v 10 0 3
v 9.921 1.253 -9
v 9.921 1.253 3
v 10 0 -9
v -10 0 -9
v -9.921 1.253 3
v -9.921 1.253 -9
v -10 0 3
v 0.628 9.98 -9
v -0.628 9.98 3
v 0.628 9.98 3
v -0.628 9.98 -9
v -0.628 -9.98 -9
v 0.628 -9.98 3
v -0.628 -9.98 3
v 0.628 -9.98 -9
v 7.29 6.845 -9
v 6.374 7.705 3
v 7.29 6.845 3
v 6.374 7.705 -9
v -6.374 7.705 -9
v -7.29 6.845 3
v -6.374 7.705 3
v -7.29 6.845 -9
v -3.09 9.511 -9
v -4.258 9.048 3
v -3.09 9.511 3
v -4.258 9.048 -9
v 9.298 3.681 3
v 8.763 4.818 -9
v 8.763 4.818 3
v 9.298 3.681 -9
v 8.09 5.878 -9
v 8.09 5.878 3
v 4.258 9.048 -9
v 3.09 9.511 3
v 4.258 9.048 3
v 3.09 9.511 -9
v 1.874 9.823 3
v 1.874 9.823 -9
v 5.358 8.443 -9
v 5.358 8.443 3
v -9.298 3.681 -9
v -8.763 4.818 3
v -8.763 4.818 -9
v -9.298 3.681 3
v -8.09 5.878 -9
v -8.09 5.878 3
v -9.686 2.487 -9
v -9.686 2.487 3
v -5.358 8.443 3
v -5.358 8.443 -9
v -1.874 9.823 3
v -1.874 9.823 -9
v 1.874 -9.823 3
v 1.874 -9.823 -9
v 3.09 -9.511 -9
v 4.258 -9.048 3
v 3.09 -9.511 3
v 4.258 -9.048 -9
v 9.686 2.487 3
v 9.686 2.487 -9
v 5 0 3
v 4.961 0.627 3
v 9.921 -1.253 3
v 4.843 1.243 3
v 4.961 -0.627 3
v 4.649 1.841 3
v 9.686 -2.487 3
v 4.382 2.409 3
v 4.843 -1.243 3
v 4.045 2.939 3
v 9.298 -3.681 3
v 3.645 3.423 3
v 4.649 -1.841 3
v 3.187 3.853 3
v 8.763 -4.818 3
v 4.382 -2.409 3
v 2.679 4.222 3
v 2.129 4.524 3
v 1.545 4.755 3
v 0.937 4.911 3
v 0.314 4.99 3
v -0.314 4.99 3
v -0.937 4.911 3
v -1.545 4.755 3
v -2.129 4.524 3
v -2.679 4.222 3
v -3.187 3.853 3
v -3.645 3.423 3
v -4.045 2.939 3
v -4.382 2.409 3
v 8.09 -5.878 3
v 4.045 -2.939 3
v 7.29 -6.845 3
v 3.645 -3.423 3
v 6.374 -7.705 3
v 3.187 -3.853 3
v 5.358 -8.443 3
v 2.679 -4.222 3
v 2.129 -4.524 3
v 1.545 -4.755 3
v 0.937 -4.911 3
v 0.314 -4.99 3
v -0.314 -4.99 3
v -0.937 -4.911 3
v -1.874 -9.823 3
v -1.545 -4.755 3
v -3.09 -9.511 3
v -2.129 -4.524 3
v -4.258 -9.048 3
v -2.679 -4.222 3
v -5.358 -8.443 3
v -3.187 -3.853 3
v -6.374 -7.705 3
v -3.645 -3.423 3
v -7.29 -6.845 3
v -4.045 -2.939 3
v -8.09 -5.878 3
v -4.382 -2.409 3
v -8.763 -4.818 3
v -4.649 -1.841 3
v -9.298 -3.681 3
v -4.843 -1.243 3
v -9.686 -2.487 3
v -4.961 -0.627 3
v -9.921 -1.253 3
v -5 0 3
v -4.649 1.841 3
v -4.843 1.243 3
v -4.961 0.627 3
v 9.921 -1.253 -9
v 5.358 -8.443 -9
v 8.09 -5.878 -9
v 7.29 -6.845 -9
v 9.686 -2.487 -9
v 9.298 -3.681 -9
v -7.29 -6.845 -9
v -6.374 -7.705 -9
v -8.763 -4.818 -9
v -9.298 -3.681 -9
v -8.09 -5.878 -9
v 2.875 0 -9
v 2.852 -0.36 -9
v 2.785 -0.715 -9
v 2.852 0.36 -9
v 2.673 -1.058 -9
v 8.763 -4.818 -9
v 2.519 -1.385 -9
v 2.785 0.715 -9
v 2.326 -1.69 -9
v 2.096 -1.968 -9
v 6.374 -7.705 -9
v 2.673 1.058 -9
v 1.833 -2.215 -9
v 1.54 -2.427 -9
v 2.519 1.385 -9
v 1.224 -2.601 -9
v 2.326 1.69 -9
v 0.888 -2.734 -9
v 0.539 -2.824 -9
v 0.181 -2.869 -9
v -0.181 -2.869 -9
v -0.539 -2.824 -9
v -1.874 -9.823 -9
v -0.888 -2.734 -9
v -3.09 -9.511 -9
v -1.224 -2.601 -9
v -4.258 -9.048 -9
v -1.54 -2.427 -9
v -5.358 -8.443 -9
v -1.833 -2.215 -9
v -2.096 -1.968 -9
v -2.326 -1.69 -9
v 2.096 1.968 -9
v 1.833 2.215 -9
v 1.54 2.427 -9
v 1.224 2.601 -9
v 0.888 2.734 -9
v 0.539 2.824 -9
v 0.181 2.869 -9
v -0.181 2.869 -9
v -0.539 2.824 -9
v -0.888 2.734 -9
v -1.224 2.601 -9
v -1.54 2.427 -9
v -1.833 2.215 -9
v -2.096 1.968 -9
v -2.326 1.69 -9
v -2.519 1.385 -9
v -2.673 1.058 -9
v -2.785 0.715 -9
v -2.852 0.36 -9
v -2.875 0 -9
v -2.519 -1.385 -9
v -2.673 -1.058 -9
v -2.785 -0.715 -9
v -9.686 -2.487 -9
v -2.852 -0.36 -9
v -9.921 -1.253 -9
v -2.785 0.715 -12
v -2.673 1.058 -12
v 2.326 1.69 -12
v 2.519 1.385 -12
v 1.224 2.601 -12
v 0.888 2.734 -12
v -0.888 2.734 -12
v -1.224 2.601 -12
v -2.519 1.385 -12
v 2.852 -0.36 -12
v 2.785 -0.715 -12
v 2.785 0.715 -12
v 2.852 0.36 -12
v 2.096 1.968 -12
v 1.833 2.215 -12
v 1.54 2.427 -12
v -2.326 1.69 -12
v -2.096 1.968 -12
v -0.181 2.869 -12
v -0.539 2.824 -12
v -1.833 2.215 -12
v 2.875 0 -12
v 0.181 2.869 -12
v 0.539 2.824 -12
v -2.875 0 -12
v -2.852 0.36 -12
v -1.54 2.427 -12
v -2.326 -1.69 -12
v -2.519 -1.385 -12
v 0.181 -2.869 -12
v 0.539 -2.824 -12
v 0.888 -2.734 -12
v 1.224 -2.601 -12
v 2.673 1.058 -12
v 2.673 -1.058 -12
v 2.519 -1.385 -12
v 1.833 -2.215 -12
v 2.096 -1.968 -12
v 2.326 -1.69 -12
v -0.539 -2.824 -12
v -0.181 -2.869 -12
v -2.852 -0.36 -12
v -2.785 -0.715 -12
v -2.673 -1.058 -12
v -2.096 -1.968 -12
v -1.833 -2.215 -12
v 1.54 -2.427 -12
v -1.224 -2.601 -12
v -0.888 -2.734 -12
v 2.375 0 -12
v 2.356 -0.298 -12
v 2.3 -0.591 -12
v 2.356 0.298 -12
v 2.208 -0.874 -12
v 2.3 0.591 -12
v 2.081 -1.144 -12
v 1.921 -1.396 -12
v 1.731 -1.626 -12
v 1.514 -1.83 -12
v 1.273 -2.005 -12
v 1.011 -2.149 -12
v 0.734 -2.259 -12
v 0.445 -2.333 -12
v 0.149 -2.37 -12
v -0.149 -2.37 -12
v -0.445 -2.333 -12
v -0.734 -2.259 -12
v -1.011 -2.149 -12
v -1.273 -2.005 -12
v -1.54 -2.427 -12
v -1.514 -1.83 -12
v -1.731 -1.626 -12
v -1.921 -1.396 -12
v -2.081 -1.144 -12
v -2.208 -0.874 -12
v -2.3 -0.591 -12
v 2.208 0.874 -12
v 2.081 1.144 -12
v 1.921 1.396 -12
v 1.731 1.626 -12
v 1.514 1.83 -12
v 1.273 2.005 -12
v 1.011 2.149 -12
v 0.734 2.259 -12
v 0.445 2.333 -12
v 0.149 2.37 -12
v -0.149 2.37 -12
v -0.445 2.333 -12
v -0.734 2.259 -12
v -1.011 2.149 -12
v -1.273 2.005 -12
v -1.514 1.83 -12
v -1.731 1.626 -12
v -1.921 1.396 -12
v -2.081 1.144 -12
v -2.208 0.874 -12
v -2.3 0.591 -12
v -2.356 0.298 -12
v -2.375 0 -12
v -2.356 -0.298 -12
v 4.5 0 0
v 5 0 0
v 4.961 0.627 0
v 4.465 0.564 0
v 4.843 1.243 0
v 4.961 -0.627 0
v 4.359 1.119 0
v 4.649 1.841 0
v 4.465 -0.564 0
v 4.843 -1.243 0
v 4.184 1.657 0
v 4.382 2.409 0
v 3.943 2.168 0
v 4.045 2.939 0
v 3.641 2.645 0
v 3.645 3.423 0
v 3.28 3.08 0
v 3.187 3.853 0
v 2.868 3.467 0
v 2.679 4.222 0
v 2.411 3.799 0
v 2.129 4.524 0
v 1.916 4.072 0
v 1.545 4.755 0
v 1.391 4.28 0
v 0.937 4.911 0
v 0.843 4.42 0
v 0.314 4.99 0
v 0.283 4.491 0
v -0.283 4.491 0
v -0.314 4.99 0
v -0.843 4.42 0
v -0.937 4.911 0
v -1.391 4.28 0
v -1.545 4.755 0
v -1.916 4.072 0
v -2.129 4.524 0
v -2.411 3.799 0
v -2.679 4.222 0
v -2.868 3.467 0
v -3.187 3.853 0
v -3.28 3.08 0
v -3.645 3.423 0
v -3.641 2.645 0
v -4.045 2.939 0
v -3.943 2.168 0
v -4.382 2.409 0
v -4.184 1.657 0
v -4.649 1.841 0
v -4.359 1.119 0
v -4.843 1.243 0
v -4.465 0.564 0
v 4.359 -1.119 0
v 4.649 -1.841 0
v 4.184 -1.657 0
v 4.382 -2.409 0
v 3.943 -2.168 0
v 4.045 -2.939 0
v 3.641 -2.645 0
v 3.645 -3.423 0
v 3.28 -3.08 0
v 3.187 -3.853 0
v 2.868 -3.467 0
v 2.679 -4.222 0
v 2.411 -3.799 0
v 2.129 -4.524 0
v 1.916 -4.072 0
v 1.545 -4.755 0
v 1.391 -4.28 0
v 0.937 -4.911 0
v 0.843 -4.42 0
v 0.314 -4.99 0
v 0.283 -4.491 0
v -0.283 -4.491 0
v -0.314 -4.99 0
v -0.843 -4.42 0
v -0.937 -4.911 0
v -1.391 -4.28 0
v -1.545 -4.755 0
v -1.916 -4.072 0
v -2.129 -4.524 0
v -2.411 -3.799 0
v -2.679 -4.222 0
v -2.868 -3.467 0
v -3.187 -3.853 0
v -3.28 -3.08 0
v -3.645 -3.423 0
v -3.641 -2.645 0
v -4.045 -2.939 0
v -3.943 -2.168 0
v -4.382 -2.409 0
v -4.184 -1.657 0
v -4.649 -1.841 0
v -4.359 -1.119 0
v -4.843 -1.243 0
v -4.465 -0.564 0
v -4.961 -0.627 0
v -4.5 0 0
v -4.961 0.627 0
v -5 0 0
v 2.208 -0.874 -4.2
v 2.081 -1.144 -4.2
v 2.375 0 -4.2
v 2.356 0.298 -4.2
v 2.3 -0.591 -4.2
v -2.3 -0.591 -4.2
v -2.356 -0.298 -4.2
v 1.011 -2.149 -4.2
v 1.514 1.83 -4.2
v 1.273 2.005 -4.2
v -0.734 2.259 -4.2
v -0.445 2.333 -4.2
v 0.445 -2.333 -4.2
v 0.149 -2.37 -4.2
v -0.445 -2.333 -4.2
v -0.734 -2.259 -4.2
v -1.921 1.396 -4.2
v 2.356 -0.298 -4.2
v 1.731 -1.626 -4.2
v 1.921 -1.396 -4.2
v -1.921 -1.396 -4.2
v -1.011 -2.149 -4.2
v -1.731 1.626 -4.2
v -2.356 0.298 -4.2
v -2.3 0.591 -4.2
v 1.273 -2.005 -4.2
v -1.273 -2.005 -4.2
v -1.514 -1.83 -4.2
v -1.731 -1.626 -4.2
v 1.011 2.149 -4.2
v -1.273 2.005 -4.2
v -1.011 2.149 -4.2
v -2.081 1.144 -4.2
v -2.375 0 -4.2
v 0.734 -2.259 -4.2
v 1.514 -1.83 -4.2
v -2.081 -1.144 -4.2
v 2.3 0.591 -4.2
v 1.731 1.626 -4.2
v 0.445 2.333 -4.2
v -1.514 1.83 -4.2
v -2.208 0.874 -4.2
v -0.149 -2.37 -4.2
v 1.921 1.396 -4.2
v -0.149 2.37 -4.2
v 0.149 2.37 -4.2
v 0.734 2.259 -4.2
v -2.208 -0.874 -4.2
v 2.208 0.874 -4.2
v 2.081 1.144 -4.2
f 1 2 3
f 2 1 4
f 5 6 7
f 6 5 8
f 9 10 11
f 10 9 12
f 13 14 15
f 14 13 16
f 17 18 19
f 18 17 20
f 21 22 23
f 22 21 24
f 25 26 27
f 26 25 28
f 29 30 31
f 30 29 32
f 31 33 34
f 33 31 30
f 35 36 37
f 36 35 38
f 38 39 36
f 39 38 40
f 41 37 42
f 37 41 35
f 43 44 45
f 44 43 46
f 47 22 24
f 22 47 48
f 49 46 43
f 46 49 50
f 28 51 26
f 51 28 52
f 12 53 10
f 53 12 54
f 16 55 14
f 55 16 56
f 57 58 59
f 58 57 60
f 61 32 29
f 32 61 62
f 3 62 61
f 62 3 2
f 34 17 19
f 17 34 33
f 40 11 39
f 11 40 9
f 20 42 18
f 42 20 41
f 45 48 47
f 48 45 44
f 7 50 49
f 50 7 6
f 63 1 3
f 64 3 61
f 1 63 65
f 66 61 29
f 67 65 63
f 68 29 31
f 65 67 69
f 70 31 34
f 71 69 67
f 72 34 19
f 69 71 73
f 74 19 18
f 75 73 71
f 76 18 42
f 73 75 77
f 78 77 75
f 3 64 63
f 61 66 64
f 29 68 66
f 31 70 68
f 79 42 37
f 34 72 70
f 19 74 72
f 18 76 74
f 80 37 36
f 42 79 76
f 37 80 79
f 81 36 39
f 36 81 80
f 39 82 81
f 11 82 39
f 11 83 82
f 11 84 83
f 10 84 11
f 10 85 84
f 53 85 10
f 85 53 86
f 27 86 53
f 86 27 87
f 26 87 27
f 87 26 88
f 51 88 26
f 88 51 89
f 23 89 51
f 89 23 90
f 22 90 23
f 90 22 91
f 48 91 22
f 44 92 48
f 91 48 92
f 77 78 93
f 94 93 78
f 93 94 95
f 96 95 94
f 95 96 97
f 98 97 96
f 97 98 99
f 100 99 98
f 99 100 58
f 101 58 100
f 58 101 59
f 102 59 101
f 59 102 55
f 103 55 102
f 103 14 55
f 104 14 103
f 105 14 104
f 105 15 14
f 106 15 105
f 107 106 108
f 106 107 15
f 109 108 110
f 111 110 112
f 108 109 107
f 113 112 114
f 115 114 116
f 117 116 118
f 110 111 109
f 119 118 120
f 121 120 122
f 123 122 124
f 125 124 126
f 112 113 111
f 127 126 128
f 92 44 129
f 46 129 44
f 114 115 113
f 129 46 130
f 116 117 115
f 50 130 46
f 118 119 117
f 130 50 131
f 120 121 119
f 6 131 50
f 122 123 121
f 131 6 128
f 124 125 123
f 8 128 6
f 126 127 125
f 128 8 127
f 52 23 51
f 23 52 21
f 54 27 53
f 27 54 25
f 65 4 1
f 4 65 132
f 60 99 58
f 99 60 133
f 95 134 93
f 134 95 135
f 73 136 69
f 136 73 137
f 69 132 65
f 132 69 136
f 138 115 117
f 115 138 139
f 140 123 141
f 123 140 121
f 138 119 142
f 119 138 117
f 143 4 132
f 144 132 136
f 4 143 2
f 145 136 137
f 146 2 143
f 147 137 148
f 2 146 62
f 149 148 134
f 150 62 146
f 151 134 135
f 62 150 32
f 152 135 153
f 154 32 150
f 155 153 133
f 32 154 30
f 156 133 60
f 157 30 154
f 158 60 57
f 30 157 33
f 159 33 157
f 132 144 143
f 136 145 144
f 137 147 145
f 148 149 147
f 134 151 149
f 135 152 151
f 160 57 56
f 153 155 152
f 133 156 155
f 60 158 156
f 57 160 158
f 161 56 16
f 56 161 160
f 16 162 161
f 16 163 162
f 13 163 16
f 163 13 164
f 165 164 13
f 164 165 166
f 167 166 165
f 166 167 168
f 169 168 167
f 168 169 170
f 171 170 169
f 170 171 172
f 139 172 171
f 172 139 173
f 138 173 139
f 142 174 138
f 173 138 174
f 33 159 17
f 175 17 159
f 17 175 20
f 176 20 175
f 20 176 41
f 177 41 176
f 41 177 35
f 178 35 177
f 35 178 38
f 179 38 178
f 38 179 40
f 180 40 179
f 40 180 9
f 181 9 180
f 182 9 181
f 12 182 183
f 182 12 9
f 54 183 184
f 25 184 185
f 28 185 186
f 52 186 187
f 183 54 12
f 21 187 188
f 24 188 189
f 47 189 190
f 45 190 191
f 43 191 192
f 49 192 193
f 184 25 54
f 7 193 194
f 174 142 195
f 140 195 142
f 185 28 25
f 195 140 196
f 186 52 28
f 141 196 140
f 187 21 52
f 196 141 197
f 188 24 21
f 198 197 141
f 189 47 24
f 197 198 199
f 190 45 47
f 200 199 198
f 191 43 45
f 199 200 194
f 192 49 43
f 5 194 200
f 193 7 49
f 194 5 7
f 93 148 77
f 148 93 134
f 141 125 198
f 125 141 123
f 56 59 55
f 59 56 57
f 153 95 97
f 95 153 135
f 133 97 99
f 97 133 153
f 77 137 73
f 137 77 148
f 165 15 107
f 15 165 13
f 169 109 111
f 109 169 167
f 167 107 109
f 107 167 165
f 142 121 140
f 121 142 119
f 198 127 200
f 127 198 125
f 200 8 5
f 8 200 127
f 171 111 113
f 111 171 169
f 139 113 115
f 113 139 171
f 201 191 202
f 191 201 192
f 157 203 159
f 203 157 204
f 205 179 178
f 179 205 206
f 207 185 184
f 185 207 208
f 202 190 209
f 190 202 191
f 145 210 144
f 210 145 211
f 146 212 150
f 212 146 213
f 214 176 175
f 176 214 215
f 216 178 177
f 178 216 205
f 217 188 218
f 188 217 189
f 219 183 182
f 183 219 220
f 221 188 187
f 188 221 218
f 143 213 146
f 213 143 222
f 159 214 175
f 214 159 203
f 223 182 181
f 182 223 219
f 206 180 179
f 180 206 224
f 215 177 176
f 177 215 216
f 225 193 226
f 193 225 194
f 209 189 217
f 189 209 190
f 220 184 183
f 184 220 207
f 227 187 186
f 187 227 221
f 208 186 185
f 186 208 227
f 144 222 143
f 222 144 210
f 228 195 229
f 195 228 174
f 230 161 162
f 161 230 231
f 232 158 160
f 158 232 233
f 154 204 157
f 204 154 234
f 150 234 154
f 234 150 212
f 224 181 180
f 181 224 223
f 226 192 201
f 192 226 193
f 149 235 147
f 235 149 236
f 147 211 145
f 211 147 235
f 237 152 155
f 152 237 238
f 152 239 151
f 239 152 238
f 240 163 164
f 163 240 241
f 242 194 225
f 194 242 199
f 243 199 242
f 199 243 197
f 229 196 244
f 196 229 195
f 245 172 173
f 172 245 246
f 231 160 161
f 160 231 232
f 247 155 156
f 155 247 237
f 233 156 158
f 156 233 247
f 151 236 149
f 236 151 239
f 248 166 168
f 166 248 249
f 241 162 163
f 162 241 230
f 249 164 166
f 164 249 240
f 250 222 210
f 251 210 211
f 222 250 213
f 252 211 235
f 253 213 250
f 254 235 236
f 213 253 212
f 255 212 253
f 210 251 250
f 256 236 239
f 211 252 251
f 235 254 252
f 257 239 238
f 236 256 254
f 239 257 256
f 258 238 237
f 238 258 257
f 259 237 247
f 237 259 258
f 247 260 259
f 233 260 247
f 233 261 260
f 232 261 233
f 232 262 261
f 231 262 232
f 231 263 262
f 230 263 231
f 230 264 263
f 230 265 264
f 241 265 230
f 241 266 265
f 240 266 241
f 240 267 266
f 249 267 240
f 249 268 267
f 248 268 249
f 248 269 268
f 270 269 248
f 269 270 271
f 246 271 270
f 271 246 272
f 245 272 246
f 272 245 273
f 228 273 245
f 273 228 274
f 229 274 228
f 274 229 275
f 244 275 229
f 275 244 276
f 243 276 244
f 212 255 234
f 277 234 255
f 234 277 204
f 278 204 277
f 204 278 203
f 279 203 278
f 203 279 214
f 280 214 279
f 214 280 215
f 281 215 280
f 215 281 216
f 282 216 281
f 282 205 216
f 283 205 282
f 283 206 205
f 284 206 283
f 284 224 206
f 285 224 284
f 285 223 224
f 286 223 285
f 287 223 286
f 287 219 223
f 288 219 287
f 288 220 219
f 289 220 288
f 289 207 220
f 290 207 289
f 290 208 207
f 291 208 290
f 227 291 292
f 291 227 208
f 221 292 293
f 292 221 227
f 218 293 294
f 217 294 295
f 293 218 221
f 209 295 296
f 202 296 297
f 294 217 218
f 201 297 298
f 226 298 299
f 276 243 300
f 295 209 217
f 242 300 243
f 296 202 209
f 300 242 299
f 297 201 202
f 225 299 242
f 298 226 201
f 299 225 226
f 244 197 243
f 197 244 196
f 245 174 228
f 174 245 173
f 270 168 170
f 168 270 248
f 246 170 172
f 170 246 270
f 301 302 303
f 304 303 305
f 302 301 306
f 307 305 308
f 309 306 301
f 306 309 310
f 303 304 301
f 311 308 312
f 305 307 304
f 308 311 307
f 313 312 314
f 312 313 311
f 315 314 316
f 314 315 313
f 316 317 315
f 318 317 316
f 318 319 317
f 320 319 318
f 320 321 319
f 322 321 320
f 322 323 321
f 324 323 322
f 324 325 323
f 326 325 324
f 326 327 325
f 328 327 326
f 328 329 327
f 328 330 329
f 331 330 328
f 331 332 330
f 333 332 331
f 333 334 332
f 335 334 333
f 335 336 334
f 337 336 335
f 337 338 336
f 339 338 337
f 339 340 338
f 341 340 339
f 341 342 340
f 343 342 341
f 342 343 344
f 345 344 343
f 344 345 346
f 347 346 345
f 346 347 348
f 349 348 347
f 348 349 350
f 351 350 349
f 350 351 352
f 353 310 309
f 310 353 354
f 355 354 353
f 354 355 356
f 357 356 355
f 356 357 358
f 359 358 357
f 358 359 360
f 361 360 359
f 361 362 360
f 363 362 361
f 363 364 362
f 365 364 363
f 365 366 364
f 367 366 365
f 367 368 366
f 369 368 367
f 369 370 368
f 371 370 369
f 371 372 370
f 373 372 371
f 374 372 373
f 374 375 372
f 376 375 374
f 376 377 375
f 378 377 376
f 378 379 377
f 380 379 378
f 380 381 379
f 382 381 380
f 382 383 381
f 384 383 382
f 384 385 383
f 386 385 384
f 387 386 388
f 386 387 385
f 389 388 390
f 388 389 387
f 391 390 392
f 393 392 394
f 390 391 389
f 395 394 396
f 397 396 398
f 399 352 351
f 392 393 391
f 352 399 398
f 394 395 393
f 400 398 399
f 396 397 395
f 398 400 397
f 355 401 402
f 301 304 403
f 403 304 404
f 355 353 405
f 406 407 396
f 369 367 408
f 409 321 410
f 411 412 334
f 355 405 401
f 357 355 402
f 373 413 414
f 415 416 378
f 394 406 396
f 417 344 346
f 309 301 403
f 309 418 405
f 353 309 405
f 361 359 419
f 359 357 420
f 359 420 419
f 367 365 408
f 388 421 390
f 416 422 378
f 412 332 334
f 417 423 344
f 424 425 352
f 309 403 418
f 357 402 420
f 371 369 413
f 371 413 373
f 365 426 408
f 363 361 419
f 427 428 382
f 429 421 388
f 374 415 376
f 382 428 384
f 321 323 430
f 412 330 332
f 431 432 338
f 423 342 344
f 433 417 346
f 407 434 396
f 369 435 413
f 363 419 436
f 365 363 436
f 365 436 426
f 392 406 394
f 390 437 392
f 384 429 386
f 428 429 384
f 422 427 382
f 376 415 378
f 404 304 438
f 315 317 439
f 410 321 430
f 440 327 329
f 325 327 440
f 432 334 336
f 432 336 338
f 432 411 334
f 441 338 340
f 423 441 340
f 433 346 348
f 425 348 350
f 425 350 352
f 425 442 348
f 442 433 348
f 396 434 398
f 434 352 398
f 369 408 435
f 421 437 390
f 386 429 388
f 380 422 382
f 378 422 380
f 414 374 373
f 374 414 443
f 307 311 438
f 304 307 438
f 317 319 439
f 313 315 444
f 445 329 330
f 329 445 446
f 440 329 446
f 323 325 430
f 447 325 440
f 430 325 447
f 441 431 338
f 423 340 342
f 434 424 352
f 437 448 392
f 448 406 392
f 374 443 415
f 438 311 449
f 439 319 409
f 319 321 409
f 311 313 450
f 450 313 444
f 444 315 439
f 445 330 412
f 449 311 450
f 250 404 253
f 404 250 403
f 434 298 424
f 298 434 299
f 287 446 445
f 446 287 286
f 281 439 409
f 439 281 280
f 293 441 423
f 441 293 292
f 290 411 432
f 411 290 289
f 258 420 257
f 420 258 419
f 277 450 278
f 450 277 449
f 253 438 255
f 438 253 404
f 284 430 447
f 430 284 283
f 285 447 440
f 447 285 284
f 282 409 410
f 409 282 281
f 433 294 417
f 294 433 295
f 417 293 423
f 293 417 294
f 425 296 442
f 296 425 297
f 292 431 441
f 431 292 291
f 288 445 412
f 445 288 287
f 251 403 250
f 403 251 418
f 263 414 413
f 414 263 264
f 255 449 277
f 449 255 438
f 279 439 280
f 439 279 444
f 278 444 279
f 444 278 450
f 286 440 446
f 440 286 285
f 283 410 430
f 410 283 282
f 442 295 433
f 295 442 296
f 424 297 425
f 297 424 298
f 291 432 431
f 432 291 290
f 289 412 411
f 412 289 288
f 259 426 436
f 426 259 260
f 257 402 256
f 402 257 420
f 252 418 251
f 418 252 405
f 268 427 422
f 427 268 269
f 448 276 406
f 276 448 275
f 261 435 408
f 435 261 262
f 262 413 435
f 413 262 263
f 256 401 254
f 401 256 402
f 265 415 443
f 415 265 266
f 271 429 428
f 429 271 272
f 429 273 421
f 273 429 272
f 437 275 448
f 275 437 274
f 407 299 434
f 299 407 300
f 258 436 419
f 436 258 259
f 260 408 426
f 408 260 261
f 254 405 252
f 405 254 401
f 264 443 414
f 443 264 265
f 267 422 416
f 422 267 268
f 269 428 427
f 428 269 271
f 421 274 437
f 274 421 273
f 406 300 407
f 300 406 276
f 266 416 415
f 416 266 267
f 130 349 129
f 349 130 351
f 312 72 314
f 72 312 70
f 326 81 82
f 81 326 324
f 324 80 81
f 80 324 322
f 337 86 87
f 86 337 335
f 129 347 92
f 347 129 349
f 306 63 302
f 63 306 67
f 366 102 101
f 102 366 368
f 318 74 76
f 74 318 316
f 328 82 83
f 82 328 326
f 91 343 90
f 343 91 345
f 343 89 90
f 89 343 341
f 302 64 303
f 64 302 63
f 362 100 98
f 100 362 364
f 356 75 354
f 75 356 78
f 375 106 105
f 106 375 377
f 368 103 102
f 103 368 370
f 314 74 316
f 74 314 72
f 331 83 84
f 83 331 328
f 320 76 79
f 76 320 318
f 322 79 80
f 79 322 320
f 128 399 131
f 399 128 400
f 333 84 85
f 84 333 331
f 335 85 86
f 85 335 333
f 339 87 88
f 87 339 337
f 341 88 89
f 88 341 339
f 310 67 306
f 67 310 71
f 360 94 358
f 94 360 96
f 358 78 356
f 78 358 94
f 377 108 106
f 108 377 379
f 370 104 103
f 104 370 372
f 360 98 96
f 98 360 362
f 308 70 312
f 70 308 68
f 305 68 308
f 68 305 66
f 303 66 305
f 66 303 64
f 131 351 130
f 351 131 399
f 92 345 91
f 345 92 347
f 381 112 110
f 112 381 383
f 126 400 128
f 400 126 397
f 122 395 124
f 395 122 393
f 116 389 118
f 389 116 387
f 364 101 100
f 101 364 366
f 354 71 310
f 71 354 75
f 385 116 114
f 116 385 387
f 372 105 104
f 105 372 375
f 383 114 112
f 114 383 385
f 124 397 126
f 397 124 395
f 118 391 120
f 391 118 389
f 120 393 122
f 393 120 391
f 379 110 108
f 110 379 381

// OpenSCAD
$fn = 50;

difference() {
	union() {
		translate(v = [0, 0, -9.0]) {
			cylinder(h = 12, r = 10.0);
		}
		#translate(v = [0, 0, -12.0]) {
			cylinder(h = 12, r = 2.875);
		}
	}
	union() {
		translate(v = [0, 0, 0]) {
			rotate(a = [0, 0, 0]) {
				difference() {
					union() {
						translate(v = [0, 0, -12.0]) {
							cylinder(h = 12, r = 2.25);
						}
						translate(v = [0, 0, -4.2]) {
							cylinder(h = 4.2, r1 = 2.375, r2 = 4.5);
						}
						translate(v = [0, 0, -12.0]) {
							cylinder(h = 12, r = 2.375);
						}
						translate(v = [0, 0, -12.0]) {
							cylinder(h = 12, r = 2.25);
						}
					}
					union();
				}
			}
		}
		#cylinder(h = 3, r = 5.0);
	}
}
